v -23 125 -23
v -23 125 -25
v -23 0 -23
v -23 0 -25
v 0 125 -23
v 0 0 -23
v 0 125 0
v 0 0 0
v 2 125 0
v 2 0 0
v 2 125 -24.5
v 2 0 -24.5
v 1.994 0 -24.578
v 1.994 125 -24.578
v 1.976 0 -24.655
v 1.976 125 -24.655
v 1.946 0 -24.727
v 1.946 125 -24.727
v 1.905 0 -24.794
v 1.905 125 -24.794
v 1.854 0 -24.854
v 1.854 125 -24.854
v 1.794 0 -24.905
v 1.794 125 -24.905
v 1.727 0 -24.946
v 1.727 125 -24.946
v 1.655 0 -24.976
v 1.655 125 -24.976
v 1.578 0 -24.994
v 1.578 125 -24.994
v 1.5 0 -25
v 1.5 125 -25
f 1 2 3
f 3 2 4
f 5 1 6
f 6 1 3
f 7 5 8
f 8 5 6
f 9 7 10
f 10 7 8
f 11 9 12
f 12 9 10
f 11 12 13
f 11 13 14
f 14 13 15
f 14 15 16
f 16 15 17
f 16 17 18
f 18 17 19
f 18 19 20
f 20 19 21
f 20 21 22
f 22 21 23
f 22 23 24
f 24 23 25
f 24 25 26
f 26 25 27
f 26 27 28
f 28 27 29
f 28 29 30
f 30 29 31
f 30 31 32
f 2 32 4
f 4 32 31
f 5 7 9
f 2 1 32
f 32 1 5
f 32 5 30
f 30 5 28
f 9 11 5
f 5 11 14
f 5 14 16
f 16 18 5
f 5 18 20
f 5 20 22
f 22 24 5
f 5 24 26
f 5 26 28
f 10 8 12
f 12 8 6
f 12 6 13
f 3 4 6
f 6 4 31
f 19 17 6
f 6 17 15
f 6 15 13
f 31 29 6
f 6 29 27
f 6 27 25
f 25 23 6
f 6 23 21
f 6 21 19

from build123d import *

# Parameters (mm, degrees)
SALIENTE_EXTRUIR1_DEPTH = 125


with BuildPart() as part:
    # Croquis1 → Saliente-Extruir1 (new body)
    with BuildSketch(Plane(origin=(0, 0, 0), x_dir=(1, 0, 0), z_dir=(0, 1, 0))):
        with BuildLine():
            Line((-23, 23), (0, 23))
            Line((0, 23), (0, 0))
            Line((0, 0), (2, 0))
            Line((2, 0), (2, 24.5))
            ThreePointArc((2, 24.5), (1.853553391, 24.853553391), (1.5, 25))
            Line((1.5, 25), (-23, 25))
            Line((-23, 25), (-23, 23))
        make_face()
    extrude(amount=SALIENTE_EXTRUIR1_DEPTH)


solid = part.part
